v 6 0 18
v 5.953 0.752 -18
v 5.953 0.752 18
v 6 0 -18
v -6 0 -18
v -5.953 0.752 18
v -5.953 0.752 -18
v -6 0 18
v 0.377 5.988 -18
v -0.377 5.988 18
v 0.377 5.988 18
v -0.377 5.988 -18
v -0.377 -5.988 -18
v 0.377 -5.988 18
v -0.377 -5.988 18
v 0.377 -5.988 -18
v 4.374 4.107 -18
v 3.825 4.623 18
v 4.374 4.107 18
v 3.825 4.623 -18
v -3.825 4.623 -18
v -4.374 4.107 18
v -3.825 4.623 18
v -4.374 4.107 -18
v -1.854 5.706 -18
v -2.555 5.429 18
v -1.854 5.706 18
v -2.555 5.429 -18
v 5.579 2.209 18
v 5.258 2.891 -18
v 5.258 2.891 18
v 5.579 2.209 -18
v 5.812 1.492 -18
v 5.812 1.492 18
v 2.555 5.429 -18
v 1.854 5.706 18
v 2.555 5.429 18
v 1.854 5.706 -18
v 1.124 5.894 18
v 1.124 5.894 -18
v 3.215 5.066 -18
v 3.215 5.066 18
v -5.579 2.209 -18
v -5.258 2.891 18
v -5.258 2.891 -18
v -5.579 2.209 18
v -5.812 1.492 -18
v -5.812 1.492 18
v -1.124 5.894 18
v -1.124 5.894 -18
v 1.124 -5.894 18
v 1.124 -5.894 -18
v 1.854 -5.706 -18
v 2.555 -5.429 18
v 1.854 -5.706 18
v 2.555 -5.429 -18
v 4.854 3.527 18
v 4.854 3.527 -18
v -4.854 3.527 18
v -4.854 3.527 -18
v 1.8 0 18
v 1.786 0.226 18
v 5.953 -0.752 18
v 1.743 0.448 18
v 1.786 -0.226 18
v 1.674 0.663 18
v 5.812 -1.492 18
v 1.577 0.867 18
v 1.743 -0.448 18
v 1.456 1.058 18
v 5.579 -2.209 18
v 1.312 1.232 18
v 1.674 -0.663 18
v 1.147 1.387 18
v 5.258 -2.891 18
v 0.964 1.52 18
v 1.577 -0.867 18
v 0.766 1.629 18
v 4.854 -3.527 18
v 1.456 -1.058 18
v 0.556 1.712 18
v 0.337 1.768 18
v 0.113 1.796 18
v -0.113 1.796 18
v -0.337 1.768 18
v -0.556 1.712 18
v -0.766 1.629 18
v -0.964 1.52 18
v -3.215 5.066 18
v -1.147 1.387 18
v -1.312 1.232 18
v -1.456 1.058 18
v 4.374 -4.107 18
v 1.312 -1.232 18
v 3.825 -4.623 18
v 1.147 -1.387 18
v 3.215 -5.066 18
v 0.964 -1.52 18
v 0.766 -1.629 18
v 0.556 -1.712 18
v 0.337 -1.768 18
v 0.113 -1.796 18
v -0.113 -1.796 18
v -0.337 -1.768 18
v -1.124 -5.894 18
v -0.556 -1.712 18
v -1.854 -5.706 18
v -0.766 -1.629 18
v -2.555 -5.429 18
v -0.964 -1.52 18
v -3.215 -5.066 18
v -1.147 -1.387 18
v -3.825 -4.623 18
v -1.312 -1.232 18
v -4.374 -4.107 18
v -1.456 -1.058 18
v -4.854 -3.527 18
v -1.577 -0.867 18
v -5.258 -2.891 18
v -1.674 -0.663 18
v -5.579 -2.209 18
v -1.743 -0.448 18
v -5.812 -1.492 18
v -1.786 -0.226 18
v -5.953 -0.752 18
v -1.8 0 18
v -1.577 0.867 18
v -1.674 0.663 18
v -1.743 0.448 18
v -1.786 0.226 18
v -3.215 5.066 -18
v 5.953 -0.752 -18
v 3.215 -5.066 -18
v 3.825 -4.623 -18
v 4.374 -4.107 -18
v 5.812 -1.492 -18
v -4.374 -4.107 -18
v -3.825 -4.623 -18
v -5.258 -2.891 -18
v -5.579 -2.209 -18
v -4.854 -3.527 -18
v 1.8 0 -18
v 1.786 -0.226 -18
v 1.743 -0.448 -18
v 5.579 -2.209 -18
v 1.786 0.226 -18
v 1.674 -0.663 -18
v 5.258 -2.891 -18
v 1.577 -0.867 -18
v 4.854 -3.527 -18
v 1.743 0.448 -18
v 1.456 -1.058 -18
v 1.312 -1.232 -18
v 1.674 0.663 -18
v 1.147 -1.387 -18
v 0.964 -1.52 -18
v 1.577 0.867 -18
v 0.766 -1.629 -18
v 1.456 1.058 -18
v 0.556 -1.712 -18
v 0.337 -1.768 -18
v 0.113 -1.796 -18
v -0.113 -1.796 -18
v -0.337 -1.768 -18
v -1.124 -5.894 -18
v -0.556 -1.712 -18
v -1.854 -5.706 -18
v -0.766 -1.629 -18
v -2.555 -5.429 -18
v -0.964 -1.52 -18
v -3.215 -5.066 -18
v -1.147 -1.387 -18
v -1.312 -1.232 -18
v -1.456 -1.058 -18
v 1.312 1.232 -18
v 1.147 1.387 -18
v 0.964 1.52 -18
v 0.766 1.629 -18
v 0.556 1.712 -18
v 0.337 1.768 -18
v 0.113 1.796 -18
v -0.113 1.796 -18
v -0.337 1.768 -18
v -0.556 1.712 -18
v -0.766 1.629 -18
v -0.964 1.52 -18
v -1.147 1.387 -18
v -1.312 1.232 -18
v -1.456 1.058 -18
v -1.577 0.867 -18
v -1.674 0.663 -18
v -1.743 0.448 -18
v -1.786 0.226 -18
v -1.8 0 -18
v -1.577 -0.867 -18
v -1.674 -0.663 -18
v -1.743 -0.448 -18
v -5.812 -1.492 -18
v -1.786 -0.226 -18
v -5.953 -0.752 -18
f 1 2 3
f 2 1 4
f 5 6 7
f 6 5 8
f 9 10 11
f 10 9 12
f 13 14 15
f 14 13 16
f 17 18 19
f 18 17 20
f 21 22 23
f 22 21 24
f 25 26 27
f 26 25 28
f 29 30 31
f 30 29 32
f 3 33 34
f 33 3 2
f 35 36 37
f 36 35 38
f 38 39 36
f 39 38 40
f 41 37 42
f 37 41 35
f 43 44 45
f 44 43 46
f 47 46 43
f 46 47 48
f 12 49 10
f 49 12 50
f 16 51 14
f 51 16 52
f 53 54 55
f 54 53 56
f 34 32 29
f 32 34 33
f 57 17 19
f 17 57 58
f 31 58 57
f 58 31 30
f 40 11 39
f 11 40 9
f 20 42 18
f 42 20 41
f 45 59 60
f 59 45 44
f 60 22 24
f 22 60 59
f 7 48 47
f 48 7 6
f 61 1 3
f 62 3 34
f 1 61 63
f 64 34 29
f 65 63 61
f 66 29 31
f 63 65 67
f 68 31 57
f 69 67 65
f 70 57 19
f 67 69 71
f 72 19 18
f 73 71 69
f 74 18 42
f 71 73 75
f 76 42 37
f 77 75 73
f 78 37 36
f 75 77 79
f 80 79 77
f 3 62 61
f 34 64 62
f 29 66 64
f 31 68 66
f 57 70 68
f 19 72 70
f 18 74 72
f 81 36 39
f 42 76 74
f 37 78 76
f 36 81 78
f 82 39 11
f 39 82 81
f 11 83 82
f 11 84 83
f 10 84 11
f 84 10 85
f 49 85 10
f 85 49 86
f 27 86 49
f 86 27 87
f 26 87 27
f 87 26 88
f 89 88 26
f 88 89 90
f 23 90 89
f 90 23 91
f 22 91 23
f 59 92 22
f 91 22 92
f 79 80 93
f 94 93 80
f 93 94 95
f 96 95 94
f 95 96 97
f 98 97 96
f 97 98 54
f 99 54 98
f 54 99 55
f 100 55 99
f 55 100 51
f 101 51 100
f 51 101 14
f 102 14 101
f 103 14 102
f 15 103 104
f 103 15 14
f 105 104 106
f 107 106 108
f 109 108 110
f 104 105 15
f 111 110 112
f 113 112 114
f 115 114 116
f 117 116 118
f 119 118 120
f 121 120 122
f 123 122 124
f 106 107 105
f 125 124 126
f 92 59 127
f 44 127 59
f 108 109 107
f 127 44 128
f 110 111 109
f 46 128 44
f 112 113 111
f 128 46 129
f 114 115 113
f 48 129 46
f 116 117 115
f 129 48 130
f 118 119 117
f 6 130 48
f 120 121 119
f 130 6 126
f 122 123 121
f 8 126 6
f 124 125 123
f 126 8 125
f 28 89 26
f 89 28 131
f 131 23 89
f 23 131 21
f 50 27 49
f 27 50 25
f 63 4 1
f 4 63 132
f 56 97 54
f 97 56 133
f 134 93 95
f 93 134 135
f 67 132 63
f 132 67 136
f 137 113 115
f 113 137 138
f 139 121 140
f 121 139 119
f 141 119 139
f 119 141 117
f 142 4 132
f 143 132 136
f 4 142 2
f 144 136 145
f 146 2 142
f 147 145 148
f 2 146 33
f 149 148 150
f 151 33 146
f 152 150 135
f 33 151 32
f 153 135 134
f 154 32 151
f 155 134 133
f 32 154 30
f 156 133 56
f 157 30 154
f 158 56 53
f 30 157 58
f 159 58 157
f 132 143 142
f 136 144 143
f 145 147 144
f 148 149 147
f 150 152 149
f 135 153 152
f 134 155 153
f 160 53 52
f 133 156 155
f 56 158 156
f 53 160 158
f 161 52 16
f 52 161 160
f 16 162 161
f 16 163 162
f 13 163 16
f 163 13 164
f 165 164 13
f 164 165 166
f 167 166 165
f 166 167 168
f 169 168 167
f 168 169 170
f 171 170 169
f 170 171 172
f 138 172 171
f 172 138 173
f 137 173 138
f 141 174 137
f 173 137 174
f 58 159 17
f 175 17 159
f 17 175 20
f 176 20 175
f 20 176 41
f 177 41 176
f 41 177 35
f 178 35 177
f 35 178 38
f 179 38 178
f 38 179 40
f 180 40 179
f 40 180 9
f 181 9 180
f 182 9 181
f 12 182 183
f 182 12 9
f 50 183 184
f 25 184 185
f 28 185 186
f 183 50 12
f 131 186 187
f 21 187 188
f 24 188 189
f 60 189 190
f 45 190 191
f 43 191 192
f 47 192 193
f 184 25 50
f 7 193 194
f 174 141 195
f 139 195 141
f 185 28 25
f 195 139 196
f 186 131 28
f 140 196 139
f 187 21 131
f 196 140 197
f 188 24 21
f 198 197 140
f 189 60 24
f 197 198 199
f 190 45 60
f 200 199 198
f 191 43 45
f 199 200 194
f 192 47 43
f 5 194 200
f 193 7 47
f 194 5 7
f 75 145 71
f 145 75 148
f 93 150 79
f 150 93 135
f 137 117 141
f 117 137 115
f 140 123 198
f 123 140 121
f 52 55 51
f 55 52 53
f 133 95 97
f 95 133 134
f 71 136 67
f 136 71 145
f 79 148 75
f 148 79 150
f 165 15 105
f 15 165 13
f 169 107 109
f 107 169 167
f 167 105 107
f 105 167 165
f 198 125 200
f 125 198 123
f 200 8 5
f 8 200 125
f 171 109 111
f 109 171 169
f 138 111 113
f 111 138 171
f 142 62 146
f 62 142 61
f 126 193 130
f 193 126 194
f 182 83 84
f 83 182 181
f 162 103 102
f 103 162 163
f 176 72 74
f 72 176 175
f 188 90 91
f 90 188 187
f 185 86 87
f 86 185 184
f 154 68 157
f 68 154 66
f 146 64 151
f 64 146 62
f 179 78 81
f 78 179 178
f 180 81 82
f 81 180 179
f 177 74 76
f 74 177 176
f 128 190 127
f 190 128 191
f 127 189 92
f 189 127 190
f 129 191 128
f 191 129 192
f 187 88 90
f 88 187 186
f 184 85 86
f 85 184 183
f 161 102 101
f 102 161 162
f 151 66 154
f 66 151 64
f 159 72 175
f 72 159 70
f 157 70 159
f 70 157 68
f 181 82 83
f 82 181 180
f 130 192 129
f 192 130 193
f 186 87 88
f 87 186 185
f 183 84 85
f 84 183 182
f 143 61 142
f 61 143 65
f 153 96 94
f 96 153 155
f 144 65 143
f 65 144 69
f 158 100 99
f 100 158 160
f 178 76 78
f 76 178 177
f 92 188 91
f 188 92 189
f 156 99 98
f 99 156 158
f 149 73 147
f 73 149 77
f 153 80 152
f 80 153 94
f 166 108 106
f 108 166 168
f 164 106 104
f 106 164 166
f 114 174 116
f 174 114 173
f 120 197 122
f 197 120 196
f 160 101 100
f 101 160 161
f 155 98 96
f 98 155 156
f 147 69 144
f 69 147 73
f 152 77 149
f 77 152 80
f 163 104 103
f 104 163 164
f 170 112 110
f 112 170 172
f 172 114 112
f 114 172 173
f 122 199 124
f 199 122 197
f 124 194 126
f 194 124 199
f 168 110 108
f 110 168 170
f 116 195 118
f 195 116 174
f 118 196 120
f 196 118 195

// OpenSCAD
$fn = 50;


difference() {
	union() {
		translate(v = [0, 0, -18.0000000000]) {
			cylinder(h = 36, r = 6.0000000000);
		}
	}
	union() {
		#translate(v = [0, 0, -100.0000000000]) {
			cylinder(h = 200, r = 1.8000000000);
		}
	}
}
